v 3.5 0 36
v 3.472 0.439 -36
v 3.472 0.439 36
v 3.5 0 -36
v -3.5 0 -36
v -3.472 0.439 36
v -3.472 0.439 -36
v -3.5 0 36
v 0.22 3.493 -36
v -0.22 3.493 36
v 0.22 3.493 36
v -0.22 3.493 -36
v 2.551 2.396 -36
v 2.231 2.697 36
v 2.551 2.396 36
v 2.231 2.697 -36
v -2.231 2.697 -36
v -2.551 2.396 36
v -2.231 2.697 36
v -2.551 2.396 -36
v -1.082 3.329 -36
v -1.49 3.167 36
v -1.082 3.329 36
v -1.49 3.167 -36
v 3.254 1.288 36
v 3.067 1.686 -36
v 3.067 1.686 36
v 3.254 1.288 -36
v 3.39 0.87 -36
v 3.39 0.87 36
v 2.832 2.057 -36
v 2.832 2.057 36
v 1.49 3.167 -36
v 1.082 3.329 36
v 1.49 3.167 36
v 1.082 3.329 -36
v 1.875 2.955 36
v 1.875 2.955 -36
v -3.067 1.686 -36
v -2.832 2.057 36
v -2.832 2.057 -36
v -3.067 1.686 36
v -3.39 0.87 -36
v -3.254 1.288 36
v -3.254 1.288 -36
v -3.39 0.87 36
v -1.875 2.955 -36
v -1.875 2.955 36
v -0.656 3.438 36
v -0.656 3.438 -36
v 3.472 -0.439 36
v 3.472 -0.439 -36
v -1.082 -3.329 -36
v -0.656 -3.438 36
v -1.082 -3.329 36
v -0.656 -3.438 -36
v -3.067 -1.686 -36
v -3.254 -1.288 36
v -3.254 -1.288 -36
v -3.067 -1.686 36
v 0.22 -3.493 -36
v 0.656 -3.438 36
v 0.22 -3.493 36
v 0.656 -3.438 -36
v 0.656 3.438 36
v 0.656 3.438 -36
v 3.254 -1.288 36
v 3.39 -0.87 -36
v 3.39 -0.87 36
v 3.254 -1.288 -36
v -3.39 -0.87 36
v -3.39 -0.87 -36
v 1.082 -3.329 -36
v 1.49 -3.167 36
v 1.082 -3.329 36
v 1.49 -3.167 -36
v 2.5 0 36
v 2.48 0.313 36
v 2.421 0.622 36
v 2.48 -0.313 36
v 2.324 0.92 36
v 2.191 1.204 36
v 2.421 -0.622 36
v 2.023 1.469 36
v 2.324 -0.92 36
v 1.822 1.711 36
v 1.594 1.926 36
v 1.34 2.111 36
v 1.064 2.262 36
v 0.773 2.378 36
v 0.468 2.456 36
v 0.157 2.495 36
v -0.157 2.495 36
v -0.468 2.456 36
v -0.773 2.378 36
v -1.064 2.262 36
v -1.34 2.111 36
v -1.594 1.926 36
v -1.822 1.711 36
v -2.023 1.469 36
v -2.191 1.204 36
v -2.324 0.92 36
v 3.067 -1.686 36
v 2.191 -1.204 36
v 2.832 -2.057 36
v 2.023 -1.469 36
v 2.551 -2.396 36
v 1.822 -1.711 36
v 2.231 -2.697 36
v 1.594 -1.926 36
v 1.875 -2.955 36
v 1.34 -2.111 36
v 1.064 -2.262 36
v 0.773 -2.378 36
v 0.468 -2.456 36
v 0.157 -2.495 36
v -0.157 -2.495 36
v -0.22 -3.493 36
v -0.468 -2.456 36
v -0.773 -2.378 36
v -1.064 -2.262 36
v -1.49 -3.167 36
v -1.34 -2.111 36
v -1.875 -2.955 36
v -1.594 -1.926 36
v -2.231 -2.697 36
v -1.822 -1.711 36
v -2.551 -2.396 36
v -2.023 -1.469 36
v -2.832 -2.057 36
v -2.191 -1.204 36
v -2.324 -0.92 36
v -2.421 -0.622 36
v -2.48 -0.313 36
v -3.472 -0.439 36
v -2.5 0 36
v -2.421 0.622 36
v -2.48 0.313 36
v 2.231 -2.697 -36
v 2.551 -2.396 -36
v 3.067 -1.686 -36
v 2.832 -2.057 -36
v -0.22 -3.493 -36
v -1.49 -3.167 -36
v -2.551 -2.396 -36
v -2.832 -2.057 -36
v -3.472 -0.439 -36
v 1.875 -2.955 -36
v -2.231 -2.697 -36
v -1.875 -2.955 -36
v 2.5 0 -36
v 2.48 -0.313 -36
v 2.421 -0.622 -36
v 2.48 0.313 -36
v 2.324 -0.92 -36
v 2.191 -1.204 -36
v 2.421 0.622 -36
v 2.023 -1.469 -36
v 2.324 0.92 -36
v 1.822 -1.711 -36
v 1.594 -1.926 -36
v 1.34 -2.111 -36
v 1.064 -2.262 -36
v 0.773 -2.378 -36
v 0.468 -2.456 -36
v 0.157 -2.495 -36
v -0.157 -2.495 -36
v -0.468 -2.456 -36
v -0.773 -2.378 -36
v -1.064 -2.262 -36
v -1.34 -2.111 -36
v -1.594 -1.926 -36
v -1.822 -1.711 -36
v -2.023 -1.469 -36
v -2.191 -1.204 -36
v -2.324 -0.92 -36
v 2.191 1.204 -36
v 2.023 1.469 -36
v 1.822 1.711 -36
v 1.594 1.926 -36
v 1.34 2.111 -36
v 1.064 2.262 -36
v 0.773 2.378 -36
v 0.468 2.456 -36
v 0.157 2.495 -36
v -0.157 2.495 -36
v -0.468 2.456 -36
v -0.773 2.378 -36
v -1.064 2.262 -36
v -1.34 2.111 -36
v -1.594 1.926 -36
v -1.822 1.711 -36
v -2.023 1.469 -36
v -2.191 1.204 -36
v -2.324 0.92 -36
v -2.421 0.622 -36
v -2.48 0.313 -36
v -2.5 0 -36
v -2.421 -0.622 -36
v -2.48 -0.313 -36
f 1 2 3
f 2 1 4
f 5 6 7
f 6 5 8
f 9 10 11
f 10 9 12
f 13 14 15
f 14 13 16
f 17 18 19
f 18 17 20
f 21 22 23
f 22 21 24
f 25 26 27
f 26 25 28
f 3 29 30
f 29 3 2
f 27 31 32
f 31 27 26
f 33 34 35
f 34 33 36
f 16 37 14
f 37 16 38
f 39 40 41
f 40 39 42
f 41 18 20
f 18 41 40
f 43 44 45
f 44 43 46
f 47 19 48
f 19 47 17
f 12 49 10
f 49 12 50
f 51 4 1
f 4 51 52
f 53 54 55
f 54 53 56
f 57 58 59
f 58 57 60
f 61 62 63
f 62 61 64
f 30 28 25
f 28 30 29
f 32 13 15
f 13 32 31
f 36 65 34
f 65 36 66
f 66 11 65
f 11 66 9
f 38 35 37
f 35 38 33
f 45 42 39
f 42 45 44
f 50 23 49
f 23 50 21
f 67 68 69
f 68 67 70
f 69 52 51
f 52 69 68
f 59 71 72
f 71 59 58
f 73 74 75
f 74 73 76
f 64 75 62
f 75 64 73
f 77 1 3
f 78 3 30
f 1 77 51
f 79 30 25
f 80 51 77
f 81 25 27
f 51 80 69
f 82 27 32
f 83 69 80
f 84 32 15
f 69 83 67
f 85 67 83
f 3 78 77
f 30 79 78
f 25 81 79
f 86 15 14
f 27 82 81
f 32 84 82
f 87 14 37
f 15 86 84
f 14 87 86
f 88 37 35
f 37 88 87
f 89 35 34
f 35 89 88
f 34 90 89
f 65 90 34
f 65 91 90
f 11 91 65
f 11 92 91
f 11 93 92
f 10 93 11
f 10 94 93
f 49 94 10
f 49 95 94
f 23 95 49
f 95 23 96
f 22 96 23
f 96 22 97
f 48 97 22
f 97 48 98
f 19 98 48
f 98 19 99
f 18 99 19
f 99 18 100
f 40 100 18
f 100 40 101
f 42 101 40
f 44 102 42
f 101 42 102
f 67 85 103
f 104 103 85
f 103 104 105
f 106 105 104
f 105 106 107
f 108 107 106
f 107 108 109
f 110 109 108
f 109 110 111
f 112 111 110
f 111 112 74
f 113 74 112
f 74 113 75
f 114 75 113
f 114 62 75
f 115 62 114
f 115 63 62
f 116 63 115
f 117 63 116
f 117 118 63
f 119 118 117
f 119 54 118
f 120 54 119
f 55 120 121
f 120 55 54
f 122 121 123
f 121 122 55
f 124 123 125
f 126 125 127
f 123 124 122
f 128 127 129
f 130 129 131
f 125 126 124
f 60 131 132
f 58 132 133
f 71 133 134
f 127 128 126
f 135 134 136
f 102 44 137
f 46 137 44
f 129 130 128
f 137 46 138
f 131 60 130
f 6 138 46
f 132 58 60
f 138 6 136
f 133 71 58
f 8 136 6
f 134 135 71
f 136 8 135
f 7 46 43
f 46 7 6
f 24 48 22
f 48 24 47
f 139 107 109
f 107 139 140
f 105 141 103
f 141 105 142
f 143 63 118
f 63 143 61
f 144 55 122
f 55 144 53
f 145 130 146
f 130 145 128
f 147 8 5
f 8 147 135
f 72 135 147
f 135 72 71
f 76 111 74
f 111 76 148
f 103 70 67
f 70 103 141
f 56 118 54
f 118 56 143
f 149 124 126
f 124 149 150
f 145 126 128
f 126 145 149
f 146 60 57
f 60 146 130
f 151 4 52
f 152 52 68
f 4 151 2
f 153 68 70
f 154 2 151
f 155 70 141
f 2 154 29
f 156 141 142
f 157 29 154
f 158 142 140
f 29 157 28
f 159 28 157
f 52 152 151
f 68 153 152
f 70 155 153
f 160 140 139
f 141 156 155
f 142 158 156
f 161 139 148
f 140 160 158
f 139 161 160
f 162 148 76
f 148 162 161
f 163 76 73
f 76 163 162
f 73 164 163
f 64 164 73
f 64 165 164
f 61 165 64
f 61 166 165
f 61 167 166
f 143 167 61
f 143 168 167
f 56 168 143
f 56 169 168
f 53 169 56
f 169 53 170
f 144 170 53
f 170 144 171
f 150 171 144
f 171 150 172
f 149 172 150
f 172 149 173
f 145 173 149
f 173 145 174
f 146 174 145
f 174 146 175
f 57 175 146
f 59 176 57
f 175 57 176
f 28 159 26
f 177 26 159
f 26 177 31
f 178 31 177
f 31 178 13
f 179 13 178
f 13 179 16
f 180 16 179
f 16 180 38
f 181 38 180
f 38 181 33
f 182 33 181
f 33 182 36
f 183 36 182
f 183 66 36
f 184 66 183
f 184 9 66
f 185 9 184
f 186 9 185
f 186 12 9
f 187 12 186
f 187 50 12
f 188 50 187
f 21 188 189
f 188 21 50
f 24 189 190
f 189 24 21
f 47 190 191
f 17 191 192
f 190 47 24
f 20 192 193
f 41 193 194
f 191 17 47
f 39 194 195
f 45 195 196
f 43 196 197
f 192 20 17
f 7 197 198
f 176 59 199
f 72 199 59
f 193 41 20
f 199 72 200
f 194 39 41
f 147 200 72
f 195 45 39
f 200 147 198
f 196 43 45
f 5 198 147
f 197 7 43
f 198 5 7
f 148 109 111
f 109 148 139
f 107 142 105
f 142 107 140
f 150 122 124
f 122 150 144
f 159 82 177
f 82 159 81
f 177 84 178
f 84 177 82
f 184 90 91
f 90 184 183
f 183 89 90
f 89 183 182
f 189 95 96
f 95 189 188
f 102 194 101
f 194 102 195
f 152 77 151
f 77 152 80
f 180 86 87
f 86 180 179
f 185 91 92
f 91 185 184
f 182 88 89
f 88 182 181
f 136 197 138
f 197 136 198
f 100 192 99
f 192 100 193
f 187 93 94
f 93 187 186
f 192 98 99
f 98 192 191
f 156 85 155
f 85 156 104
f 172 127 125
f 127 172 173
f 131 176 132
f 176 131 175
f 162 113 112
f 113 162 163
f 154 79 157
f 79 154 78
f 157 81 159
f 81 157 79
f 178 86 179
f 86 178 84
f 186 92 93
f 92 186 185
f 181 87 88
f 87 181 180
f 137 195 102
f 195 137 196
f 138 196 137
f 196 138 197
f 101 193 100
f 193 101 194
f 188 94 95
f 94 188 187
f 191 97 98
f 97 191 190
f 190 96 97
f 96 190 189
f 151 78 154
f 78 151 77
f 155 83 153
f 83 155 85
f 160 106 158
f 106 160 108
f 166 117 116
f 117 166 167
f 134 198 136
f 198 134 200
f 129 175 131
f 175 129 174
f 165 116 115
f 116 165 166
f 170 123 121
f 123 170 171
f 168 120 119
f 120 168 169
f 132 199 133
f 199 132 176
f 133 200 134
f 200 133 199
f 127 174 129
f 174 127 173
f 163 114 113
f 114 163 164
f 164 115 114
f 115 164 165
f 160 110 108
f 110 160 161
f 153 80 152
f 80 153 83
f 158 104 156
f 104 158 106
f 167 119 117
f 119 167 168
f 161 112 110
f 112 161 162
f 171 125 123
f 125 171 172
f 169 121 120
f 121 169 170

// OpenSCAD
$fn = 50;


difference() {
	union() {
		translate(v = [0, 0, -36.0000000000]) {
			cylinder(h = 72, r = 3.5000000000);
		}
	}
	union() {
		translate(v = [0, 0, -100.0000000000]) {
			cylinder(h = 200, r = 2.5000000000);
		}
	}
}
